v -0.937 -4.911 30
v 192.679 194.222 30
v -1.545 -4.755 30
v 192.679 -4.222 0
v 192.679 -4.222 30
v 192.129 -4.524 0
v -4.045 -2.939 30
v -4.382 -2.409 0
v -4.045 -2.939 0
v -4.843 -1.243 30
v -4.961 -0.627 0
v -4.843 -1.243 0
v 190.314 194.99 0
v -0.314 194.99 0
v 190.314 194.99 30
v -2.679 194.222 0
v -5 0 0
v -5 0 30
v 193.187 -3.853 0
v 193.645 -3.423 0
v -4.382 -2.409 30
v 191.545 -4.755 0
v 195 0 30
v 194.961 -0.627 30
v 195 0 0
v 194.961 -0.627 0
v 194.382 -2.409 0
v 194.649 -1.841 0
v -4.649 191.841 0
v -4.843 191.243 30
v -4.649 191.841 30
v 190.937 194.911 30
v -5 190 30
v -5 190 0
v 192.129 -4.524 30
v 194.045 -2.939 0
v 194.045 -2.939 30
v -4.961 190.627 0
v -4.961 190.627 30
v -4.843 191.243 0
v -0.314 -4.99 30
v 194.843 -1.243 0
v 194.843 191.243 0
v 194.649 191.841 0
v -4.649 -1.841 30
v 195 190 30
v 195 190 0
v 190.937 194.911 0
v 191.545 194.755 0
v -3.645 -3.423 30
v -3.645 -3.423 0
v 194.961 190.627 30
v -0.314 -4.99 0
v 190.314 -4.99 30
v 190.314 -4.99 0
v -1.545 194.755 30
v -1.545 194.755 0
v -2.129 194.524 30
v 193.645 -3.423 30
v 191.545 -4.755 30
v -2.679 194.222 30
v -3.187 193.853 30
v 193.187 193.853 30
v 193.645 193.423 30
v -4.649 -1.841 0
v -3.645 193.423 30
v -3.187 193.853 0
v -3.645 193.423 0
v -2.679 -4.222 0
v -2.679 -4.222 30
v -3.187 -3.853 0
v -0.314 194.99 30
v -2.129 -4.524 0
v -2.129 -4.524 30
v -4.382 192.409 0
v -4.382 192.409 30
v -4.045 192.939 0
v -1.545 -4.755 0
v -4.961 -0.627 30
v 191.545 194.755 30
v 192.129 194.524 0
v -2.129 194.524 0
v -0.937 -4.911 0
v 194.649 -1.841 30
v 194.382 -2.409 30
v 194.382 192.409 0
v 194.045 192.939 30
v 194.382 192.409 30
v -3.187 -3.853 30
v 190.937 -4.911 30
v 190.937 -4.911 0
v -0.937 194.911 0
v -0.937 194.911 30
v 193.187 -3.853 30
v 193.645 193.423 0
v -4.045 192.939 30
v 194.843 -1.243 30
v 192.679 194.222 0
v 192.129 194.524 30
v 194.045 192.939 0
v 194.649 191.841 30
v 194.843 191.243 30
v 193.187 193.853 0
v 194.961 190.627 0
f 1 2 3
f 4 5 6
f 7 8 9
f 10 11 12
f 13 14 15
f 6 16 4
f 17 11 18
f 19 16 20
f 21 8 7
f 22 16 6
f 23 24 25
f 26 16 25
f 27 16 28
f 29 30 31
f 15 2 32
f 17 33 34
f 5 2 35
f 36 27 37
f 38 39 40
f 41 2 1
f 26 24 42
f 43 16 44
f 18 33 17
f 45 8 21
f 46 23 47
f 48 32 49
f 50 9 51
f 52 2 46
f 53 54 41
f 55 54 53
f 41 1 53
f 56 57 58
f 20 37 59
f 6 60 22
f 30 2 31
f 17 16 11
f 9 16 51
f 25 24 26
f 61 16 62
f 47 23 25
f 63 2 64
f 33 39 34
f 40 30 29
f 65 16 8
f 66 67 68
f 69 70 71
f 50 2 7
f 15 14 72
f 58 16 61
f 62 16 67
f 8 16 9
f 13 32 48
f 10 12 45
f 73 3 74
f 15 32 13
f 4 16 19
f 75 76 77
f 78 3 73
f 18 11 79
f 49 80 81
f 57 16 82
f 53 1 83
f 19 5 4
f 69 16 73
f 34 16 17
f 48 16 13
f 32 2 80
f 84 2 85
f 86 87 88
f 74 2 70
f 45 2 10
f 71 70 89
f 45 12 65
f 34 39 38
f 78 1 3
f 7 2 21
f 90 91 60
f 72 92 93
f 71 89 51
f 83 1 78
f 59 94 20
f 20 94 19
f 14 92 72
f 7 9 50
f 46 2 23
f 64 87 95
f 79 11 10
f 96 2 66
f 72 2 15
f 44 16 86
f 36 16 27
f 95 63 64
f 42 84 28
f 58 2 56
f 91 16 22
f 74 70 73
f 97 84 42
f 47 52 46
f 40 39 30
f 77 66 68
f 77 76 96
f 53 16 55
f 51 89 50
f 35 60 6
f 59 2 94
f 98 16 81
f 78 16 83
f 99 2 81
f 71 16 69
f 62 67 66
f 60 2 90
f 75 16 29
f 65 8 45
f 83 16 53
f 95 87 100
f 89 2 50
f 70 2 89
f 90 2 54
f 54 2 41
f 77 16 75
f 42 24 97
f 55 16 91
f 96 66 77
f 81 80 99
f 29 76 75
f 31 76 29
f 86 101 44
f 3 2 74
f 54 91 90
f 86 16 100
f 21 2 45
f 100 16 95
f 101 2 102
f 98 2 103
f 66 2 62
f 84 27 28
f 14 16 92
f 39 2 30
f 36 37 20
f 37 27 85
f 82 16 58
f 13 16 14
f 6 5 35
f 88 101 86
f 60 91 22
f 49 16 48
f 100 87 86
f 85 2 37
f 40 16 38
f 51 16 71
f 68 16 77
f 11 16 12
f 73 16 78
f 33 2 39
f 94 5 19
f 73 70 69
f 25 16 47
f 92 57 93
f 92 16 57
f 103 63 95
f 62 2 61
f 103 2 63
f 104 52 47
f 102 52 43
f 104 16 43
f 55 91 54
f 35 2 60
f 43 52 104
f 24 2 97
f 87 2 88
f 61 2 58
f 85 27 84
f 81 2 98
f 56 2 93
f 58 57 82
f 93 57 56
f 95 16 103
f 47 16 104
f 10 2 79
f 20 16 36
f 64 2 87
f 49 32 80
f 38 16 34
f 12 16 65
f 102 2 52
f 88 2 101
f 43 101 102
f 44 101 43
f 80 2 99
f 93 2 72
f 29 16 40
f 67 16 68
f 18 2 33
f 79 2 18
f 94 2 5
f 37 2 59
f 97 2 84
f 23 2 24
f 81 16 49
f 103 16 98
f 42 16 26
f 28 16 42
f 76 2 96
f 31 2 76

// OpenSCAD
$fn=50;

length=200.0;
width=200.0;
height=30.0;

minkowski() {
     cube([width-10, length-10, height-10], false);
     cylinder(d=10,h=10);
};
